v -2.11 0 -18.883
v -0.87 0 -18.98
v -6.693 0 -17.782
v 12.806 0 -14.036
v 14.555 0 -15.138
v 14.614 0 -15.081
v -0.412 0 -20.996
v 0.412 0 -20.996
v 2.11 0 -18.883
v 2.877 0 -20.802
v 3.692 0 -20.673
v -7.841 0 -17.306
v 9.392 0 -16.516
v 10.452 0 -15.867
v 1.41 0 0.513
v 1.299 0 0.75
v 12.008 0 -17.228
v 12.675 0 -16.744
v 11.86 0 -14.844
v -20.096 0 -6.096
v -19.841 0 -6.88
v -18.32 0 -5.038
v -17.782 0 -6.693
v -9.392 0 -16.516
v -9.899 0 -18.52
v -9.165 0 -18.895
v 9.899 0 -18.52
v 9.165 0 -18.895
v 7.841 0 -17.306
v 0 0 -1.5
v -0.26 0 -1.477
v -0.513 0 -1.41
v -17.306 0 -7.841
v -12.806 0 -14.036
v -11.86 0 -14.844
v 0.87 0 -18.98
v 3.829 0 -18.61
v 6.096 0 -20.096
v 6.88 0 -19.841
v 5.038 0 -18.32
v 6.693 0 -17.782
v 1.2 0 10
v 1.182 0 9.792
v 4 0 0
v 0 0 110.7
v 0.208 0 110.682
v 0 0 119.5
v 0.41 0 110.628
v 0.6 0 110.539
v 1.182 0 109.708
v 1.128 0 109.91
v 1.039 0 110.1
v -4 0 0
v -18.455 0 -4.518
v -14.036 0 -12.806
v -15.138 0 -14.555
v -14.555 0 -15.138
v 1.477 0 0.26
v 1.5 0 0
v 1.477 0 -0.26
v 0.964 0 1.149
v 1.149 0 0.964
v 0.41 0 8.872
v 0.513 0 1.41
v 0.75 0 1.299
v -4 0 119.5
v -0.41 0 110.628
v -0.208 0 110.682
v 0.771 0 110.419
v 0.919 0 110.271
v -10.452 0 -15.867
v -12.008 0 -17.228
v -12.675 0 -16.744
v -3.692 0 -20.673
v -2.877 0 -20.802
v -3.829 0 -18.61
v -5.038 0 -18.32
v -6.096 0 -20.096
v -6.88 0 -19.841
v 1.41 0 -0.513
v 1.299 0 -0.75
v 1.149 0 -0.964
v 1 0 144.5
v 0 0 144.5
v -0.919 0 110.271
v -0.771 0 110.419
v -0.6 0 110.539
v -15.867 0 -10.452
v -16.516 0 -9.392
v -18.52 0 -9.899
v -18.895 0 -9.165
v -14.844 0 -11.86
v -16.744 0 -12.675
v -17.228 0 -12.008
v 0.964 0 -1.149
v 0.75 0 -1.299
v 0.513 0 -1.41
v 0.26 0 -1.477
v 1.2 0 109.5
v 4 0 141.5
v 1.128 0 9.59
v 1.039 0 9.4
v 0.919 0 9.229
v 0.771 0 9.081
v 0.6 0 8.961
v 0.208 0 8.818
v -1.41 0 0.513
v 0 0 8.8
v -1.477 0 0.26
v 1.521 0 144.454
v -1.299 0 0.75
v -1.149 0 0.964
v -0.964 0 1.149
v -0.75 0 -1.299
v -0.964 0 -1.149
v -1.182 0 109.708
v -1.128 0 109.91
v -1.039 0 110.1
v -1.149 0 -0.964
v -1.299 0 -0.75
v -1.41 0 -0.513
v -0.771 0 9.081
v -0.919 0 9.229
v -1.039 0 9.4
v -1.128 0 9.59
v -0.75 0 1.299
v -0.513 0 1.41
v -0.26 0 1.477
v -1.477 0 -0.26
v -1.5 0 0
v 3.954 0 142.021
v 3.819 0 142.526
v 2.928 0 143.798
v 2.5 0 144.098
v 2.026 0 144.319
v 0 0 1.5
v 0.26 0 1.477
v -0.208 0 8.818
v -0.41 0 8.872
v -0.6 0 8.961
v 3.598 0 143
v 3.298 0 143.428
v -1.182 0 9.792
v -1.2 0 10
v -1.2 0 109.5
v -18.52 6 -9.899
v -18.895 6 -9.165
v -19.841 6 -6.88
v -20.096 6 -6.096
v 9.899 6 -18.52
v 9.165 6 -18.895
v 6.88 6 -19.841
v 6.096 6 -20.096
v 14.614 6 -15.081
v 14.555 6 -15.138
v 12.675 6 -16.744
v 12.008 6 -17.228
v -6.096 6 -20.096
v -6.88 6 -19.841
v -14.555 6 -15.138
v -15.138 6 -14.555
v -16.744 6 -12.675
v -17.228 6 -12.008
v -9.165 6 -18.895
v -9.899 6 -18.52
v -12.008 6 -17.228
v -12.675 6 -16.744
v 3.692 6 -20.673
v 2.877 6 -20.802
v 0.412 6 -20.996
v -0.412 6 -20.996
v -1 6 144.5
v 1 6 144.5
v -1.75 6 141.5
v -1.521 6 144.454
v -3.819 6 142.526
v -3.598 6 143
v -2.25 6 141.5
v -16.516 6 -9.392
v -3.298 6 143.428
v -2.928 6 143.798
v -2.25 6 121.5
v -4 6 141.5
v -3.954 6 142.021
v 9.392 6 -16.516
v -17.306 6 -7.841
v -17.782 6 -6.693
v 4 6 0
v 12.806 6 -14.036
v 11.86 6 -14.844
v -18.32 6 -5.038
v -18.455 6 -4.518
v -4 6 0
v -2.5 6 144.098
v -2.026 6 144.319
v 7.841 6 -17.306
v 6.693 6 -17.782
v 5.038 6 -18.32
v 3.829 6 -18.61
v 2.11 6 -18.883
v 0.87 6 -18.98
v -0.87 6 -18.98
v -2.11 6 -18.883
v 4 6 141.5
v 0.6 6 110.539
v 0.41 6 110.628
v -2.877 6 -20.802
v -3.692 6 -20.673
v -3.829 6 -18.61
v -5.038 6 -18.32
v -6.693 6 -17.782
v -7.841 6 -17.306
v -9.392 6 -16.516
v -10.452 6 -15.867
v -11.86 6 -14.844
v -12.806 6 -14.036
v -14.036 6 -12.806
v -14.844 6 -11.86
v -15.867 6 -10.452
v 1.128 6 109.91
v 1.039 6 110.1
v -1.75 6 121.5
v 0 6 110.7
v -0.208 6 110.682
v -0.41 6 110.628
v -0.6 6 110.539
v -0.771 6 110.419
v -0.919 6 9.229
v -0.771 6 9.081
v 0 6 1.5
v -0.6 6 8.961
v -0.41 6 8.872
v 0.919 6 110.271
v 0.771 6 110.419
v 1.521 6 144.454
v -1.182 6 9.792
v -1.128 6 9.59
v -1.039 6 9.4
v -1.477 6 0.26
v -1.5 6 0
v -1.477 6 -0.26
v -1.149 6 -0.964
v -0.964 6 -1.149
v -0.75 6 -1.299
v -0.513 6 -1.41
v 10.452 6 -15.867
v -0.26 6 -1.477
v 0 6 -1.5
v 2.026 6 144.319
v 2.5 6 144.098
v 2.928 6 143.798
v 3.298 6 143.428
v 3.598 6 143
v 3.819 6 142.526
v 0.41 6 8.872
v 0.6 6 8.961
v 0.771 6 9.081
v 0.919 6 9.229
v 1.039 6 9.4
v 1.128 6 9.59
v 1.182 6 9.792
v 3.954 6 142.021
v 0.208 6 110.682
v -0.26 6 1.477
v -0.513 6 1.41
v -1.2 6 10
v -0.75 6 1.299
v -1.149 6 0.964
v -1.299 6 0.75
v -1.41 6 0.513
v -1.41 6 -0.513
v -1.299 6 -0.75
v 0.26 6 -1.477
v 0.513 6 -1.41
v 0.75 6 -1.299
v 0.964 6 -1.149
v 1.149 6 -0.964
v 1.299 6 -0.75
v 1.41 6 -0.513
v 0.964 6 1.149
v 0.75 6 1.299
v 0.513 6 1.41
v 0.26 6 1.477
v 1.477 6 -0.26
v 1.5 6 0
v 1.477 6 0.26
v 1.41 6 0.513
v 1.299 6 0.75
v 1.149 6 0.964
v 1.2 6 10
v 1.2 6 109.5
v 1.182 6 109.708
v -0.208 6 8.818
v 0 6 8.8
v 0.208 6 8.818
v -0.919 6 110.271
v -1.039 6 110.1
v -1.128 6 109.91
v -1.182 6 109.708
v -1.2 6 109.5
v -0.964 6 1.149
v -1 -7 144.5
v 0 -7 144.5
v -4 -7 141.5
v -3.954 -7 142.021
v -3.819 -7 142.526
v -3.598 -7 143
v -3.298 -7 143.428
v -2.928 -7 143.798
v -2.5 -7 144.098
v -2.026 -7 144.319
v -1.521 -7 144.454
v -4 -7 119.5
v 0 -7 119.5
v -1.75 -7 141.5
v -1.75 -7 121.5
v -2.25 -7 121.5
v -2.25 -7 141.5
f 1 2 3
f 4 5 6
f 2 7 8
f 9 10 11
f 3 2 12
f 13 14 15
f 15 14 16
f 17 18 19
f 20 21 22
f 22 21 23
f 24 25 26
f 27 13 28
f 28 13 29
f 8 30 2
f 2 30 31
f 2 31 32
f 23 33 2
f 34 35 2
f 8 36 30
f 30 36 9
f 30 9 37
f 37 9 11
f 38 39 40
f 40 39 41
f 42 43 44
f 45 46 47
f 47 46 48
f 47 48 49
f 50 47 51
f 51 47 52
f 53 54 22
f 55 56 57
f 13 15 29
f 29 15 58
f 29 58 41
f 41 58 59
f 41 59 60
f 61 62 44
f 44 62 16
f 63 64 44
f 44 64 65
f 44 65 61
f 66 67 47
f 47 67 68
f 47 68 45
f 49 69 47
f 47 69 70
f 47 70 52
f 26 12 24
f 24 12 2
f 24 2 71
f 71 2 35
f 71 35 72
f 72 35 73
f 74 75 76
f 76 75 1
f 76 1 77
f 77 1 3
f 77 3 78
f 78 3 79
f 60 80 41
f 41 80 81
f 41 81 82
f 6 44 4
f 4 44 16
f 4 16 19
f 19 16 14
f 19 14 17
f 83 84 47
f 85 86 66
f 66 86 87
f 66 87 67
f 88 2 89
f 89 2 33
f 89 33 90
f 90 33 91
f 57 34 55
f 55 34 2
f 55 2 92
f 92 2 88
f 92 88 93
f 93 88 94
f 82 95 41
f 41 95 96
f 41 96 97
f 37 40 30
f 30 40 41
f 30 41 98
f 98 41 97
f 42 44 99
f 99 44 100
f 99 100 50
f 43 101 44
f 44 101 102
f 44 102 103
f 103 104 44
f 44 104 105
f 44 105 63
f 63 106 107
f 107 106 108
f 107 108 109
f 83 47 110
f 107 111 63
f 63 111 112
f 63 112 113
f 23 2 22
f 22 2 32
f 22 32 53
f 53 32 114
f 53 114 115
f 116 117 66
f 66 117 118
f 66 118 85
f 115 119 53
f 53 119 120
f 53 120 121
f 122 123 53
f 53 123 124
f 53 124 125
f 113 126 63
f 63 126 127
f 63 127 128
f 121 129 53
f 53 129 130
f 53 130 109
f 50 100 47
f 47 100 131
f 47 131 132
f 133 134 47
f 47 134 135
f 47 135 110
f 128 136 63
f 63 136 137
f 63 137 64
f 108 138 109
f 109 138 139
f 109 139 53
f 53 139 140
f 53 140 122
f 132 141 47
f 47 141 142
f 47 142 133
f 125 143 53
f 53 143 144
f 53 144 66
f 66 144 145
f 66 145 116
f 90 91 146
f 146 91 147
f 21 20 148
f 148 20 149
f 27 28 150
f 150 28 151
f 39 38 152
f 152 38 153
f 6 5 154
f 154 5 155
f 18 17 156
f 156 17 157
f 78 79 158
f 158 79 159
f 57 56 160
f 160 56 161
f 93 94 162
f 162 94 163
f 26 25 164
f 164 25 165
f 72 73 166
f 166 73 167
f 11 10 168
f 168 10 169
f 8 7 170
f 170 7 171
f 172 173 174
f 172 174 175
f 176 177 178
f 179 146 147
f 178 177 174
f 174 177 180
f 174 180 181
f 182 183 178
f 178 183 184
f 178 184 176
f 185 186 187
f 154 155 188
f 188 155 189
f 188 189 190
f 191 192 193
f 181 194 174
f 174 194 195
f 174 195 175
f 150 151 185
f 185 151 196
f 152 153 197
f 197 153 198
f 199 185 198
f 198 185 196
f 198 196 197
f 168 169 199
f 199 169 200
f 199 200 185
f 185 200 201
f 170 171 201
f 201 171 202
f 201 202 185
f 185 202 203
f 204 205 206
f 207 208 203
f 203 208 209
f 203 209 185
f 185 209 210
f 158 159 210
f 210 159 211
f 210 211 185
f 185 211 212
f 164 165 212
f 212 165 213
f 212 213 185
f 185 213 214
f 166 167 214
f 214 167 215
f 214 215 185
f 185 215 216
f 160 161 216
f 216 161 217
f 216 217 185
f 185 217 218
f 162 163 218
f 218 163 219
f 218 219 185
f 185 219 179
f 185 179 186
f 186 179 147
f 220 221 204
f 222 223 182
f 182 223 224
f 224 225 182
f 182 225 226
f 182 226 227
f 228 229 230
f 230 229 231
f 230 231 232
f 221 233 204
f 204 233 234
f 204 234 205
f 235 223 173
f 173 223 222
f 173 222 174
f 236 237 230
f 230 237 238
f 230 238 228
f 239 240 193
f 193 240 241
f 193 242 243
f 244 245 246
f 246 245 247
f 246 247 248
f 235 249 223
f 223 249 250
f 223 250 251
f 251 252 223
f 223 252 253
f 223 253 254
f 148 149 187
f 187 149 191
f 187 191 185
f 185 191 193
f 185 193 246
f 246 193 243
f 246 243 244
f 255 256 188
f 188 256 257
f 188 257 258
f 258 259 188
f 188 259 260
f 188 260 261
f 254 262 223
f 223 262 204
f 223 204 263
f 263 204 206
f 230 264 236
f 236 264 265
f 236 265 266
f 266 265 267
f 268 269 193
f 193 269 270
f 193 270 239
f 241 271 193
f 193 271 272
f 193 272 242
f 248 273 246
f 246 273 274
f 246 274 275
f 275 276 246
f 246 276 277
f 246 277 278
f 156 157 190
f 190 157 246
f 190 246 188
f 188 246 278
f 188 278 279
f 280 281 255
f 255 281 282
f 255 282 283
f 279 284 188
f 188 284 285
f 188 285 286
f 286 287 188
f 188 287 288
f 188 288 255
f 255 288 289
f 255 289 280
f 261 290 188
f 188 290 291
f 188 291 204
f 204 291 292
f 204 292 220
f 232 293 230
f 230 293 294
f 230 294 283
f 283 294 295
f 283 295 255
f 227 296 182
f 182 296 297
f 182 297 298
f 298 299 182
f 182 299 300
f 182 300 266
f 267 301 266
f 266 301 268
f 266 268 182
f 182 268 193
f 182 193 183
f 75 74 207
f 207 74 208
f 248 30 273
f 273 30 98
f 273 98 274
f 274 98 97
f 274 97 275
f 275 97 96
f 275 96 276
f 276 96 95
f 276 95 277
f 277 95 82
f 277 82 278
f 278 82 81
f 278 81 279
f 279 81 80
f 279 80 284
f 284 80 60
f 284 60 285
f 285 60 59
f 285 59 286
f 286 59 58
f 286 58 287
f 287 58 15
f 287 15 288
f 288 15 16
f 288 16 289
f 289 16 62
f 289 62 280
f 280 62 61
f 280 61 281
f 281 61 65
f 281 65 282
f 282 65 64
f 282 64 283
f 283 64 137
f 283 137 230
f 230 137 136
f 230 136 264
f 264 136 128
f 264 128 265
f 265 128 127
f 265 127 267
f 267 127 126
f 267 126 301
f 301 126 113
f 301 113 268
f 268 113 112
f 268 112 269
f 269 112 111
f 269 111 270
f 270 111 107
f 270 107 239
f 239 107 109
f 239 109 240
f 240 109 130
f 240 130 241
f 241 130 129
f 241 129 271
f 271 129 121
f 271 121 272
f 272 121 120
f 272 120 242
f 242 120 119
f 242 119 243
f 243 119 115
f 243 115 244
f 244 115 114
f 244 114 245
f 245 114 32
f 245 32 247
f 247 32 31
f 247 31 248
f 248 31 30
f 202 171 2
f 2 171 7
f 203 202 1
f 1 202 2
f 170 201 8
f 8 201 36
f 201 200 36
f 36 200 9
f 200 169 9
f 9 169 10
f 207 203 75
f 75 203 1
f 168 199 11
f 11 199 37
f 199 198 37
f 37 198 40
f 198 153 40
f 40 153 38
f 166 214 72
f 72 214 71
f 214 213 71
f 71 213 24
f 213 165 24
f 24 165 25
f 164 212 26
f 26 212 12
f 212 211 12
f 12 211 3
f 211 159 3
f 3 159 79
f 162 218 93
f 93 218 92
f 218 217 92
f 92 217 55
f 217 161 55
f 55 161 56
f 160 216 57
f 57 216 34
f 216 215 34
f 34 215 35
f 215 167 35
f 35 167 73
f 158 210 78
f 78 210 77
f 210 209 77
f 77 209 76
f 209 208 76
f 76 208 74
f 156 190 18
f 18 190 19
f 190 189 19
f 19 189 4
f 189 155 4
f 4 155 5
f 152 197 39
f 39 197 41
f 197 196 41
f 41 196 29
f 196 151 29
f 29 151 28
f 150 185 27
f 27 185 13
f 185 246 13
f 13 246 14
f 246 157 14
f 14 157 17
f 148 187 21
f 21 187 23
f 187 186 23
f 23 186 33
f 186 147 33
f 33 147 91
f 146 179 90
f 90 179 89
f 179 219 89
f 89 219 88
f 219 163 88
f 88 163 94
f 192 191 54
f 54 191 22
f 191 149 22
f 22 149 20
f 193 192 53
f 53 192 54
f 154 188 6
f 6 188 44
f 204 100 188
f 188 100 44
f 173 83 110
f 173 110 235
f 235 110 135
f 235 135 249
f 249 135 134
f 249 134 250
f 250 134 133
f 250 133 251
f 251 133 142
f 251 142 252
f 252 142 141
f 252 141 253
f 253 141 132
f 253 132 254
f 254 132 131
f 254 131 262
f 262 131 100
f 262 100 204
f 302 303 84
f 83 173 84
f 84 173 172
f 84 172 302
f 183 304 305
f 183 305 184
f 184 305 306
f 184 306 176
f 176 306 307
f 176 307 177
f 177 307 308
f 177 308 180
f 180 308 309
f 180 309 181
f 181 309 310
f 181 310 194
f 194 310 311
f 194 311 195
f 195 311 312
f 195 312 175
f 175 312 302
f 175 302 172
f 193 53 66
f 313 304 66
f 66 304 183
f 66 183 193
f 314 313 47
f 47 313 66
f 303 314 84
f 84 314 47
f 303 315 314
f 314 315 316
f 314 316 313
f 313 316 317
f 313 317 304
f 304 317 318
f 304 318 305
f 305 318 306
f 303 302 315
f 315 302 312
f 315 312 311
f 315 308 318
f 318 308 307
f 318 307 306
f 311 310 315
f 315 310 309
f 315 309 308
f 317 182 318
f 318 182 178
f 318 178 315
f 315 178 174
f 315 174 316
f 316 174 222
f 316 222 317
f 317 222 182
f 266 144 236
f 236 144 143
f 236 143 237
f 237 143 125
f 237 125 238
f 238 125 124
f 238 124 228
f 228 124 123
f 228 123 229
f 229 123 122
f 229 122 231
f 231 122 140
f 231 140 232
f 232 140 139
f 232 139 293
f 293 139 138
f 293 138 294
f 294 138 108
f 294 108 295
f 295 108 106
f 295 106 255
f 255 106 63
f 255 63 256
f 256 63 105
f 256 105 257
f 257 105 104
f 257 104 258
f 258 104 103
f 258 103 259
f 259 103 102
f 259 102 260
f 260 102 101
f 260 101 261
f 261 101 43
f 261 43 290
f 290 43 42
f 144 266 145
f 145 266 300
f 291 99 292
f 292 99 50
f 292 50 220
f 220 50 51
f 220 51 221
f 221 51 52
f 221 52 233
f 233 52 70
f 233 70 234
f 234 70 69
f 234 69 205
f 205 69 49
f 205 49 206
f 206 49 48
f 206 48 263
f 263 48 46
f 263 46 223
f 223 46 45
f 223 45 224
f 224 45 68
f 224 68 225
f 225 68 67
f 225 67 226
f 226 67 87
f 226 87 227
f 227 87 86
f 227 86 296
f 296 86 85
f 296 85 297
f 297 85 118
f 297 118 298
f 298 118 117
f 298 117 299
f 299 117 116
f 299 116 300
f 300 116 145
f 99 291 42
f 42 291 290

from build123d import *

# Parameters (mm, degrees)
SKETCH1_R           = 21
SKETCH1_R_2         = 1.5
BOSS_EXTRUDE1_DEPTH = 6
CUT_EXTRUDE1_DEPTH  = 6
CIRPATTERN1_COUNT   = 40
CUT_EXTRUDE2_REACH  = 8
BOSS_EXTRUDE2_DEPTH = 6
BOSS_EXTRUDE3_DEPTH = 7
CUT_EXTRUDE4_REACH  = 15
SKETCH7_W           = 0.5
SKETCH7_H           = 20
CUT_EXTRUDE5_REACH  = 8


with BuildPart() as part:
    # Sketch1 → Boss-Extrude1 (new body)
    with BuildSketch(Plane(origin=(0, 0, 0), x_dir=(1, 0, 0), z_dir=(0, 1, 0))):
        Circle(SKETCH1_R)
        Circle(SKETCH1_R_2, mode=Mode.SUBTRACT)
    extrude(amount=BOSS_EXTRUDE1_DEPTH)

    # Sketch2 → Cut-Extrude1 (cut)
    with BuildSketch(Plane(origin=(0, 6, 0), x_dir=(1, 0, 0), z_dir=(0, 1, 0))):
        with BuildLine():
            Line((-0.870178472, 18.980062946), (-0.412307542, 20.99595205))
            ThreePointArc((-0.412307542, 20.99595205), (0, 21), (0.412307542, 20.99595205))
            Line((0.412307542, 20.99595205), (0.870178472, 18.980062946))
            ThreePointArc((0.870178472, 18.980062946), (1.180608684, 18.963284608), (1.490722819, 18.941429341))
            Line((1.490722819, 18.941429341), (1.73143755, 22))
            Line((1.73143755, 22), (-1.73143755, 22))
            Line((-1.73143755, 22), (-1.490722819, 18.941429341))
            ThreePointArc((-1.490722819, 18.941429341), (-1.180608684, 18.963284608), (-0.870178472, 18.980062946))
        make_face()
    cut_extrude1 = extrude(amount=-CUT_EXTRUDE1_DEPTH, mode=Mode.SUBTRACT)

    # CirPattern1: Cut-Extrude1 ×40 about axis
    cirpattern1_axis = Axis((0, 0, 0), (0, 1, 0))
    for i in range(1, CIRPATTERN1_COUNT):
        add(cut_extrude1.rotate(cirpattern1_axis, i * 360 / CIRPATTERN1_COUNT), mode=Mode.SUBTRACT)

    # Sketch3 → Cut-Extrude2 (cut, up to next)
    with BuildSketch(Plane(origin=(0, 6, 0), x_dir=(1, 0, 0), z_dir=(0, 1, 0)), mode=Mode.PRIVATE) as cut_extrude2_sk1:
        with BuildLine():
            Line((-4, 0), (-20.367312321, 5.115915248))
            ThreePointArc((-20.367312321, 5.115915248), (5.753143593, -20.196567501), (14.614168728, 15.080652253))
            Line((14.614168728, 15.080652253), (4, 0))
            Line((4, 0), (-4, 0))
        make_face()
    cut_extrude2_tool1 = extrude(cut_extrude2_sk1.sketch, amount=-CUT_EXTRUDE2_REACH, mode=Mode.PRIVATE) & part.part
    add(cut_extrude2_tool1.solids().sort_by_distance((1.540678, 6, 6.01351))[0], mode=Mode.SUBTRACT)

    # Sketch4 → Boss-Extrude2 (add)
    with BuildSketch(Plane.XZ):
        with BuildLine():
            Line((1.5, 0), (4, 0))
            Line((4, 0), (4, 141.5))
            ThreePointArc((4, 141.5), (3.121320344, 143.621320344), (1, 144.5))
            Line((1, 144.5), (-1, 144.5))
            ThreePointArc((-1, 144.5), (-3.121320344, 143.621320344), (-4, 141.5))
            Line((-4, 141.5), (-4, 0))
            Line((-4, 0), (-1.5, 0))
            ThreePointArc((-1.5, 0), (0, 1.5), (1.5, 0))
        make_face()
    extrude(amount=-BOSS_EXTRUDE2_DEPTH)

    # Sketch5 → Boss-Extrude3 (add)
    with BuildSketch(Plane.XZ):
        with BuildLine():
            Line((-4, 141.5), (-4, 119.5))
            Line((-4, 119.5), (0, 119.5))
            Line((0, 119.5), (0, 144.5))
            Line((0, 144.5), (-1, 144.5))
            ThreePointArc((-1, 144.5), (-3.121320344, 143.621320344), (-4, 141.5))
        make_face()
    extrude(amount=BOSS_EXTRUDE3_DEPTH)

    # Sketch7 → Cut-Extrude4 (cut, up to next)
    with BuildSketch(Plane.XZ.offset(7), mode=Mode.PRIVATE) as cut_extrude4_sk1:
        with Locations((-2, 131.5)):
            Rectangle(SKETCH7_W, SKETCH7_H)
    cut_extrude4_tool1 = extrude(cut_extrude4_sk1.sketch, amount=-CUT_EXTRUDE4_REACH, mode=Mode.PRIVATE) & part.part
    add(cut_extrude4_tool1.solids().sort_by_distance((-2, -7, 131.5))[0], mode=Mode.SUBTRACT)

    # Sketch8 → Cut-Extrude5 (cut, up to next)
    with BuildSketch(Plane.XZ, mode=Mode.PRIVATE) as cut_extrude5_sk1:
        with BuildLine():
            Line((-1.2, 10), (-1.2, 109.5))
            ThreePointArc((-1.2, 109.5), (0, 110.7), (1.2, 109.5))
            Line((1.2, 109.5), (1.2, 10))
            ThreePointArc((1.2, 10), (0, 8.8), (-1.2, 10))
        make_face()
    cut_extrude5_tool1 = extrude(cut_extrude5_sk1.sketch, amount=-CUT_EXTRUDE5_REACH, mode=Mode.PRIVATE) & part.part
    add(cut_extrude5_tool1.solids().sort_by_distance((0, 0, 59.75))[0], mode=Mode.SUBTRACT)


solid = part.part
